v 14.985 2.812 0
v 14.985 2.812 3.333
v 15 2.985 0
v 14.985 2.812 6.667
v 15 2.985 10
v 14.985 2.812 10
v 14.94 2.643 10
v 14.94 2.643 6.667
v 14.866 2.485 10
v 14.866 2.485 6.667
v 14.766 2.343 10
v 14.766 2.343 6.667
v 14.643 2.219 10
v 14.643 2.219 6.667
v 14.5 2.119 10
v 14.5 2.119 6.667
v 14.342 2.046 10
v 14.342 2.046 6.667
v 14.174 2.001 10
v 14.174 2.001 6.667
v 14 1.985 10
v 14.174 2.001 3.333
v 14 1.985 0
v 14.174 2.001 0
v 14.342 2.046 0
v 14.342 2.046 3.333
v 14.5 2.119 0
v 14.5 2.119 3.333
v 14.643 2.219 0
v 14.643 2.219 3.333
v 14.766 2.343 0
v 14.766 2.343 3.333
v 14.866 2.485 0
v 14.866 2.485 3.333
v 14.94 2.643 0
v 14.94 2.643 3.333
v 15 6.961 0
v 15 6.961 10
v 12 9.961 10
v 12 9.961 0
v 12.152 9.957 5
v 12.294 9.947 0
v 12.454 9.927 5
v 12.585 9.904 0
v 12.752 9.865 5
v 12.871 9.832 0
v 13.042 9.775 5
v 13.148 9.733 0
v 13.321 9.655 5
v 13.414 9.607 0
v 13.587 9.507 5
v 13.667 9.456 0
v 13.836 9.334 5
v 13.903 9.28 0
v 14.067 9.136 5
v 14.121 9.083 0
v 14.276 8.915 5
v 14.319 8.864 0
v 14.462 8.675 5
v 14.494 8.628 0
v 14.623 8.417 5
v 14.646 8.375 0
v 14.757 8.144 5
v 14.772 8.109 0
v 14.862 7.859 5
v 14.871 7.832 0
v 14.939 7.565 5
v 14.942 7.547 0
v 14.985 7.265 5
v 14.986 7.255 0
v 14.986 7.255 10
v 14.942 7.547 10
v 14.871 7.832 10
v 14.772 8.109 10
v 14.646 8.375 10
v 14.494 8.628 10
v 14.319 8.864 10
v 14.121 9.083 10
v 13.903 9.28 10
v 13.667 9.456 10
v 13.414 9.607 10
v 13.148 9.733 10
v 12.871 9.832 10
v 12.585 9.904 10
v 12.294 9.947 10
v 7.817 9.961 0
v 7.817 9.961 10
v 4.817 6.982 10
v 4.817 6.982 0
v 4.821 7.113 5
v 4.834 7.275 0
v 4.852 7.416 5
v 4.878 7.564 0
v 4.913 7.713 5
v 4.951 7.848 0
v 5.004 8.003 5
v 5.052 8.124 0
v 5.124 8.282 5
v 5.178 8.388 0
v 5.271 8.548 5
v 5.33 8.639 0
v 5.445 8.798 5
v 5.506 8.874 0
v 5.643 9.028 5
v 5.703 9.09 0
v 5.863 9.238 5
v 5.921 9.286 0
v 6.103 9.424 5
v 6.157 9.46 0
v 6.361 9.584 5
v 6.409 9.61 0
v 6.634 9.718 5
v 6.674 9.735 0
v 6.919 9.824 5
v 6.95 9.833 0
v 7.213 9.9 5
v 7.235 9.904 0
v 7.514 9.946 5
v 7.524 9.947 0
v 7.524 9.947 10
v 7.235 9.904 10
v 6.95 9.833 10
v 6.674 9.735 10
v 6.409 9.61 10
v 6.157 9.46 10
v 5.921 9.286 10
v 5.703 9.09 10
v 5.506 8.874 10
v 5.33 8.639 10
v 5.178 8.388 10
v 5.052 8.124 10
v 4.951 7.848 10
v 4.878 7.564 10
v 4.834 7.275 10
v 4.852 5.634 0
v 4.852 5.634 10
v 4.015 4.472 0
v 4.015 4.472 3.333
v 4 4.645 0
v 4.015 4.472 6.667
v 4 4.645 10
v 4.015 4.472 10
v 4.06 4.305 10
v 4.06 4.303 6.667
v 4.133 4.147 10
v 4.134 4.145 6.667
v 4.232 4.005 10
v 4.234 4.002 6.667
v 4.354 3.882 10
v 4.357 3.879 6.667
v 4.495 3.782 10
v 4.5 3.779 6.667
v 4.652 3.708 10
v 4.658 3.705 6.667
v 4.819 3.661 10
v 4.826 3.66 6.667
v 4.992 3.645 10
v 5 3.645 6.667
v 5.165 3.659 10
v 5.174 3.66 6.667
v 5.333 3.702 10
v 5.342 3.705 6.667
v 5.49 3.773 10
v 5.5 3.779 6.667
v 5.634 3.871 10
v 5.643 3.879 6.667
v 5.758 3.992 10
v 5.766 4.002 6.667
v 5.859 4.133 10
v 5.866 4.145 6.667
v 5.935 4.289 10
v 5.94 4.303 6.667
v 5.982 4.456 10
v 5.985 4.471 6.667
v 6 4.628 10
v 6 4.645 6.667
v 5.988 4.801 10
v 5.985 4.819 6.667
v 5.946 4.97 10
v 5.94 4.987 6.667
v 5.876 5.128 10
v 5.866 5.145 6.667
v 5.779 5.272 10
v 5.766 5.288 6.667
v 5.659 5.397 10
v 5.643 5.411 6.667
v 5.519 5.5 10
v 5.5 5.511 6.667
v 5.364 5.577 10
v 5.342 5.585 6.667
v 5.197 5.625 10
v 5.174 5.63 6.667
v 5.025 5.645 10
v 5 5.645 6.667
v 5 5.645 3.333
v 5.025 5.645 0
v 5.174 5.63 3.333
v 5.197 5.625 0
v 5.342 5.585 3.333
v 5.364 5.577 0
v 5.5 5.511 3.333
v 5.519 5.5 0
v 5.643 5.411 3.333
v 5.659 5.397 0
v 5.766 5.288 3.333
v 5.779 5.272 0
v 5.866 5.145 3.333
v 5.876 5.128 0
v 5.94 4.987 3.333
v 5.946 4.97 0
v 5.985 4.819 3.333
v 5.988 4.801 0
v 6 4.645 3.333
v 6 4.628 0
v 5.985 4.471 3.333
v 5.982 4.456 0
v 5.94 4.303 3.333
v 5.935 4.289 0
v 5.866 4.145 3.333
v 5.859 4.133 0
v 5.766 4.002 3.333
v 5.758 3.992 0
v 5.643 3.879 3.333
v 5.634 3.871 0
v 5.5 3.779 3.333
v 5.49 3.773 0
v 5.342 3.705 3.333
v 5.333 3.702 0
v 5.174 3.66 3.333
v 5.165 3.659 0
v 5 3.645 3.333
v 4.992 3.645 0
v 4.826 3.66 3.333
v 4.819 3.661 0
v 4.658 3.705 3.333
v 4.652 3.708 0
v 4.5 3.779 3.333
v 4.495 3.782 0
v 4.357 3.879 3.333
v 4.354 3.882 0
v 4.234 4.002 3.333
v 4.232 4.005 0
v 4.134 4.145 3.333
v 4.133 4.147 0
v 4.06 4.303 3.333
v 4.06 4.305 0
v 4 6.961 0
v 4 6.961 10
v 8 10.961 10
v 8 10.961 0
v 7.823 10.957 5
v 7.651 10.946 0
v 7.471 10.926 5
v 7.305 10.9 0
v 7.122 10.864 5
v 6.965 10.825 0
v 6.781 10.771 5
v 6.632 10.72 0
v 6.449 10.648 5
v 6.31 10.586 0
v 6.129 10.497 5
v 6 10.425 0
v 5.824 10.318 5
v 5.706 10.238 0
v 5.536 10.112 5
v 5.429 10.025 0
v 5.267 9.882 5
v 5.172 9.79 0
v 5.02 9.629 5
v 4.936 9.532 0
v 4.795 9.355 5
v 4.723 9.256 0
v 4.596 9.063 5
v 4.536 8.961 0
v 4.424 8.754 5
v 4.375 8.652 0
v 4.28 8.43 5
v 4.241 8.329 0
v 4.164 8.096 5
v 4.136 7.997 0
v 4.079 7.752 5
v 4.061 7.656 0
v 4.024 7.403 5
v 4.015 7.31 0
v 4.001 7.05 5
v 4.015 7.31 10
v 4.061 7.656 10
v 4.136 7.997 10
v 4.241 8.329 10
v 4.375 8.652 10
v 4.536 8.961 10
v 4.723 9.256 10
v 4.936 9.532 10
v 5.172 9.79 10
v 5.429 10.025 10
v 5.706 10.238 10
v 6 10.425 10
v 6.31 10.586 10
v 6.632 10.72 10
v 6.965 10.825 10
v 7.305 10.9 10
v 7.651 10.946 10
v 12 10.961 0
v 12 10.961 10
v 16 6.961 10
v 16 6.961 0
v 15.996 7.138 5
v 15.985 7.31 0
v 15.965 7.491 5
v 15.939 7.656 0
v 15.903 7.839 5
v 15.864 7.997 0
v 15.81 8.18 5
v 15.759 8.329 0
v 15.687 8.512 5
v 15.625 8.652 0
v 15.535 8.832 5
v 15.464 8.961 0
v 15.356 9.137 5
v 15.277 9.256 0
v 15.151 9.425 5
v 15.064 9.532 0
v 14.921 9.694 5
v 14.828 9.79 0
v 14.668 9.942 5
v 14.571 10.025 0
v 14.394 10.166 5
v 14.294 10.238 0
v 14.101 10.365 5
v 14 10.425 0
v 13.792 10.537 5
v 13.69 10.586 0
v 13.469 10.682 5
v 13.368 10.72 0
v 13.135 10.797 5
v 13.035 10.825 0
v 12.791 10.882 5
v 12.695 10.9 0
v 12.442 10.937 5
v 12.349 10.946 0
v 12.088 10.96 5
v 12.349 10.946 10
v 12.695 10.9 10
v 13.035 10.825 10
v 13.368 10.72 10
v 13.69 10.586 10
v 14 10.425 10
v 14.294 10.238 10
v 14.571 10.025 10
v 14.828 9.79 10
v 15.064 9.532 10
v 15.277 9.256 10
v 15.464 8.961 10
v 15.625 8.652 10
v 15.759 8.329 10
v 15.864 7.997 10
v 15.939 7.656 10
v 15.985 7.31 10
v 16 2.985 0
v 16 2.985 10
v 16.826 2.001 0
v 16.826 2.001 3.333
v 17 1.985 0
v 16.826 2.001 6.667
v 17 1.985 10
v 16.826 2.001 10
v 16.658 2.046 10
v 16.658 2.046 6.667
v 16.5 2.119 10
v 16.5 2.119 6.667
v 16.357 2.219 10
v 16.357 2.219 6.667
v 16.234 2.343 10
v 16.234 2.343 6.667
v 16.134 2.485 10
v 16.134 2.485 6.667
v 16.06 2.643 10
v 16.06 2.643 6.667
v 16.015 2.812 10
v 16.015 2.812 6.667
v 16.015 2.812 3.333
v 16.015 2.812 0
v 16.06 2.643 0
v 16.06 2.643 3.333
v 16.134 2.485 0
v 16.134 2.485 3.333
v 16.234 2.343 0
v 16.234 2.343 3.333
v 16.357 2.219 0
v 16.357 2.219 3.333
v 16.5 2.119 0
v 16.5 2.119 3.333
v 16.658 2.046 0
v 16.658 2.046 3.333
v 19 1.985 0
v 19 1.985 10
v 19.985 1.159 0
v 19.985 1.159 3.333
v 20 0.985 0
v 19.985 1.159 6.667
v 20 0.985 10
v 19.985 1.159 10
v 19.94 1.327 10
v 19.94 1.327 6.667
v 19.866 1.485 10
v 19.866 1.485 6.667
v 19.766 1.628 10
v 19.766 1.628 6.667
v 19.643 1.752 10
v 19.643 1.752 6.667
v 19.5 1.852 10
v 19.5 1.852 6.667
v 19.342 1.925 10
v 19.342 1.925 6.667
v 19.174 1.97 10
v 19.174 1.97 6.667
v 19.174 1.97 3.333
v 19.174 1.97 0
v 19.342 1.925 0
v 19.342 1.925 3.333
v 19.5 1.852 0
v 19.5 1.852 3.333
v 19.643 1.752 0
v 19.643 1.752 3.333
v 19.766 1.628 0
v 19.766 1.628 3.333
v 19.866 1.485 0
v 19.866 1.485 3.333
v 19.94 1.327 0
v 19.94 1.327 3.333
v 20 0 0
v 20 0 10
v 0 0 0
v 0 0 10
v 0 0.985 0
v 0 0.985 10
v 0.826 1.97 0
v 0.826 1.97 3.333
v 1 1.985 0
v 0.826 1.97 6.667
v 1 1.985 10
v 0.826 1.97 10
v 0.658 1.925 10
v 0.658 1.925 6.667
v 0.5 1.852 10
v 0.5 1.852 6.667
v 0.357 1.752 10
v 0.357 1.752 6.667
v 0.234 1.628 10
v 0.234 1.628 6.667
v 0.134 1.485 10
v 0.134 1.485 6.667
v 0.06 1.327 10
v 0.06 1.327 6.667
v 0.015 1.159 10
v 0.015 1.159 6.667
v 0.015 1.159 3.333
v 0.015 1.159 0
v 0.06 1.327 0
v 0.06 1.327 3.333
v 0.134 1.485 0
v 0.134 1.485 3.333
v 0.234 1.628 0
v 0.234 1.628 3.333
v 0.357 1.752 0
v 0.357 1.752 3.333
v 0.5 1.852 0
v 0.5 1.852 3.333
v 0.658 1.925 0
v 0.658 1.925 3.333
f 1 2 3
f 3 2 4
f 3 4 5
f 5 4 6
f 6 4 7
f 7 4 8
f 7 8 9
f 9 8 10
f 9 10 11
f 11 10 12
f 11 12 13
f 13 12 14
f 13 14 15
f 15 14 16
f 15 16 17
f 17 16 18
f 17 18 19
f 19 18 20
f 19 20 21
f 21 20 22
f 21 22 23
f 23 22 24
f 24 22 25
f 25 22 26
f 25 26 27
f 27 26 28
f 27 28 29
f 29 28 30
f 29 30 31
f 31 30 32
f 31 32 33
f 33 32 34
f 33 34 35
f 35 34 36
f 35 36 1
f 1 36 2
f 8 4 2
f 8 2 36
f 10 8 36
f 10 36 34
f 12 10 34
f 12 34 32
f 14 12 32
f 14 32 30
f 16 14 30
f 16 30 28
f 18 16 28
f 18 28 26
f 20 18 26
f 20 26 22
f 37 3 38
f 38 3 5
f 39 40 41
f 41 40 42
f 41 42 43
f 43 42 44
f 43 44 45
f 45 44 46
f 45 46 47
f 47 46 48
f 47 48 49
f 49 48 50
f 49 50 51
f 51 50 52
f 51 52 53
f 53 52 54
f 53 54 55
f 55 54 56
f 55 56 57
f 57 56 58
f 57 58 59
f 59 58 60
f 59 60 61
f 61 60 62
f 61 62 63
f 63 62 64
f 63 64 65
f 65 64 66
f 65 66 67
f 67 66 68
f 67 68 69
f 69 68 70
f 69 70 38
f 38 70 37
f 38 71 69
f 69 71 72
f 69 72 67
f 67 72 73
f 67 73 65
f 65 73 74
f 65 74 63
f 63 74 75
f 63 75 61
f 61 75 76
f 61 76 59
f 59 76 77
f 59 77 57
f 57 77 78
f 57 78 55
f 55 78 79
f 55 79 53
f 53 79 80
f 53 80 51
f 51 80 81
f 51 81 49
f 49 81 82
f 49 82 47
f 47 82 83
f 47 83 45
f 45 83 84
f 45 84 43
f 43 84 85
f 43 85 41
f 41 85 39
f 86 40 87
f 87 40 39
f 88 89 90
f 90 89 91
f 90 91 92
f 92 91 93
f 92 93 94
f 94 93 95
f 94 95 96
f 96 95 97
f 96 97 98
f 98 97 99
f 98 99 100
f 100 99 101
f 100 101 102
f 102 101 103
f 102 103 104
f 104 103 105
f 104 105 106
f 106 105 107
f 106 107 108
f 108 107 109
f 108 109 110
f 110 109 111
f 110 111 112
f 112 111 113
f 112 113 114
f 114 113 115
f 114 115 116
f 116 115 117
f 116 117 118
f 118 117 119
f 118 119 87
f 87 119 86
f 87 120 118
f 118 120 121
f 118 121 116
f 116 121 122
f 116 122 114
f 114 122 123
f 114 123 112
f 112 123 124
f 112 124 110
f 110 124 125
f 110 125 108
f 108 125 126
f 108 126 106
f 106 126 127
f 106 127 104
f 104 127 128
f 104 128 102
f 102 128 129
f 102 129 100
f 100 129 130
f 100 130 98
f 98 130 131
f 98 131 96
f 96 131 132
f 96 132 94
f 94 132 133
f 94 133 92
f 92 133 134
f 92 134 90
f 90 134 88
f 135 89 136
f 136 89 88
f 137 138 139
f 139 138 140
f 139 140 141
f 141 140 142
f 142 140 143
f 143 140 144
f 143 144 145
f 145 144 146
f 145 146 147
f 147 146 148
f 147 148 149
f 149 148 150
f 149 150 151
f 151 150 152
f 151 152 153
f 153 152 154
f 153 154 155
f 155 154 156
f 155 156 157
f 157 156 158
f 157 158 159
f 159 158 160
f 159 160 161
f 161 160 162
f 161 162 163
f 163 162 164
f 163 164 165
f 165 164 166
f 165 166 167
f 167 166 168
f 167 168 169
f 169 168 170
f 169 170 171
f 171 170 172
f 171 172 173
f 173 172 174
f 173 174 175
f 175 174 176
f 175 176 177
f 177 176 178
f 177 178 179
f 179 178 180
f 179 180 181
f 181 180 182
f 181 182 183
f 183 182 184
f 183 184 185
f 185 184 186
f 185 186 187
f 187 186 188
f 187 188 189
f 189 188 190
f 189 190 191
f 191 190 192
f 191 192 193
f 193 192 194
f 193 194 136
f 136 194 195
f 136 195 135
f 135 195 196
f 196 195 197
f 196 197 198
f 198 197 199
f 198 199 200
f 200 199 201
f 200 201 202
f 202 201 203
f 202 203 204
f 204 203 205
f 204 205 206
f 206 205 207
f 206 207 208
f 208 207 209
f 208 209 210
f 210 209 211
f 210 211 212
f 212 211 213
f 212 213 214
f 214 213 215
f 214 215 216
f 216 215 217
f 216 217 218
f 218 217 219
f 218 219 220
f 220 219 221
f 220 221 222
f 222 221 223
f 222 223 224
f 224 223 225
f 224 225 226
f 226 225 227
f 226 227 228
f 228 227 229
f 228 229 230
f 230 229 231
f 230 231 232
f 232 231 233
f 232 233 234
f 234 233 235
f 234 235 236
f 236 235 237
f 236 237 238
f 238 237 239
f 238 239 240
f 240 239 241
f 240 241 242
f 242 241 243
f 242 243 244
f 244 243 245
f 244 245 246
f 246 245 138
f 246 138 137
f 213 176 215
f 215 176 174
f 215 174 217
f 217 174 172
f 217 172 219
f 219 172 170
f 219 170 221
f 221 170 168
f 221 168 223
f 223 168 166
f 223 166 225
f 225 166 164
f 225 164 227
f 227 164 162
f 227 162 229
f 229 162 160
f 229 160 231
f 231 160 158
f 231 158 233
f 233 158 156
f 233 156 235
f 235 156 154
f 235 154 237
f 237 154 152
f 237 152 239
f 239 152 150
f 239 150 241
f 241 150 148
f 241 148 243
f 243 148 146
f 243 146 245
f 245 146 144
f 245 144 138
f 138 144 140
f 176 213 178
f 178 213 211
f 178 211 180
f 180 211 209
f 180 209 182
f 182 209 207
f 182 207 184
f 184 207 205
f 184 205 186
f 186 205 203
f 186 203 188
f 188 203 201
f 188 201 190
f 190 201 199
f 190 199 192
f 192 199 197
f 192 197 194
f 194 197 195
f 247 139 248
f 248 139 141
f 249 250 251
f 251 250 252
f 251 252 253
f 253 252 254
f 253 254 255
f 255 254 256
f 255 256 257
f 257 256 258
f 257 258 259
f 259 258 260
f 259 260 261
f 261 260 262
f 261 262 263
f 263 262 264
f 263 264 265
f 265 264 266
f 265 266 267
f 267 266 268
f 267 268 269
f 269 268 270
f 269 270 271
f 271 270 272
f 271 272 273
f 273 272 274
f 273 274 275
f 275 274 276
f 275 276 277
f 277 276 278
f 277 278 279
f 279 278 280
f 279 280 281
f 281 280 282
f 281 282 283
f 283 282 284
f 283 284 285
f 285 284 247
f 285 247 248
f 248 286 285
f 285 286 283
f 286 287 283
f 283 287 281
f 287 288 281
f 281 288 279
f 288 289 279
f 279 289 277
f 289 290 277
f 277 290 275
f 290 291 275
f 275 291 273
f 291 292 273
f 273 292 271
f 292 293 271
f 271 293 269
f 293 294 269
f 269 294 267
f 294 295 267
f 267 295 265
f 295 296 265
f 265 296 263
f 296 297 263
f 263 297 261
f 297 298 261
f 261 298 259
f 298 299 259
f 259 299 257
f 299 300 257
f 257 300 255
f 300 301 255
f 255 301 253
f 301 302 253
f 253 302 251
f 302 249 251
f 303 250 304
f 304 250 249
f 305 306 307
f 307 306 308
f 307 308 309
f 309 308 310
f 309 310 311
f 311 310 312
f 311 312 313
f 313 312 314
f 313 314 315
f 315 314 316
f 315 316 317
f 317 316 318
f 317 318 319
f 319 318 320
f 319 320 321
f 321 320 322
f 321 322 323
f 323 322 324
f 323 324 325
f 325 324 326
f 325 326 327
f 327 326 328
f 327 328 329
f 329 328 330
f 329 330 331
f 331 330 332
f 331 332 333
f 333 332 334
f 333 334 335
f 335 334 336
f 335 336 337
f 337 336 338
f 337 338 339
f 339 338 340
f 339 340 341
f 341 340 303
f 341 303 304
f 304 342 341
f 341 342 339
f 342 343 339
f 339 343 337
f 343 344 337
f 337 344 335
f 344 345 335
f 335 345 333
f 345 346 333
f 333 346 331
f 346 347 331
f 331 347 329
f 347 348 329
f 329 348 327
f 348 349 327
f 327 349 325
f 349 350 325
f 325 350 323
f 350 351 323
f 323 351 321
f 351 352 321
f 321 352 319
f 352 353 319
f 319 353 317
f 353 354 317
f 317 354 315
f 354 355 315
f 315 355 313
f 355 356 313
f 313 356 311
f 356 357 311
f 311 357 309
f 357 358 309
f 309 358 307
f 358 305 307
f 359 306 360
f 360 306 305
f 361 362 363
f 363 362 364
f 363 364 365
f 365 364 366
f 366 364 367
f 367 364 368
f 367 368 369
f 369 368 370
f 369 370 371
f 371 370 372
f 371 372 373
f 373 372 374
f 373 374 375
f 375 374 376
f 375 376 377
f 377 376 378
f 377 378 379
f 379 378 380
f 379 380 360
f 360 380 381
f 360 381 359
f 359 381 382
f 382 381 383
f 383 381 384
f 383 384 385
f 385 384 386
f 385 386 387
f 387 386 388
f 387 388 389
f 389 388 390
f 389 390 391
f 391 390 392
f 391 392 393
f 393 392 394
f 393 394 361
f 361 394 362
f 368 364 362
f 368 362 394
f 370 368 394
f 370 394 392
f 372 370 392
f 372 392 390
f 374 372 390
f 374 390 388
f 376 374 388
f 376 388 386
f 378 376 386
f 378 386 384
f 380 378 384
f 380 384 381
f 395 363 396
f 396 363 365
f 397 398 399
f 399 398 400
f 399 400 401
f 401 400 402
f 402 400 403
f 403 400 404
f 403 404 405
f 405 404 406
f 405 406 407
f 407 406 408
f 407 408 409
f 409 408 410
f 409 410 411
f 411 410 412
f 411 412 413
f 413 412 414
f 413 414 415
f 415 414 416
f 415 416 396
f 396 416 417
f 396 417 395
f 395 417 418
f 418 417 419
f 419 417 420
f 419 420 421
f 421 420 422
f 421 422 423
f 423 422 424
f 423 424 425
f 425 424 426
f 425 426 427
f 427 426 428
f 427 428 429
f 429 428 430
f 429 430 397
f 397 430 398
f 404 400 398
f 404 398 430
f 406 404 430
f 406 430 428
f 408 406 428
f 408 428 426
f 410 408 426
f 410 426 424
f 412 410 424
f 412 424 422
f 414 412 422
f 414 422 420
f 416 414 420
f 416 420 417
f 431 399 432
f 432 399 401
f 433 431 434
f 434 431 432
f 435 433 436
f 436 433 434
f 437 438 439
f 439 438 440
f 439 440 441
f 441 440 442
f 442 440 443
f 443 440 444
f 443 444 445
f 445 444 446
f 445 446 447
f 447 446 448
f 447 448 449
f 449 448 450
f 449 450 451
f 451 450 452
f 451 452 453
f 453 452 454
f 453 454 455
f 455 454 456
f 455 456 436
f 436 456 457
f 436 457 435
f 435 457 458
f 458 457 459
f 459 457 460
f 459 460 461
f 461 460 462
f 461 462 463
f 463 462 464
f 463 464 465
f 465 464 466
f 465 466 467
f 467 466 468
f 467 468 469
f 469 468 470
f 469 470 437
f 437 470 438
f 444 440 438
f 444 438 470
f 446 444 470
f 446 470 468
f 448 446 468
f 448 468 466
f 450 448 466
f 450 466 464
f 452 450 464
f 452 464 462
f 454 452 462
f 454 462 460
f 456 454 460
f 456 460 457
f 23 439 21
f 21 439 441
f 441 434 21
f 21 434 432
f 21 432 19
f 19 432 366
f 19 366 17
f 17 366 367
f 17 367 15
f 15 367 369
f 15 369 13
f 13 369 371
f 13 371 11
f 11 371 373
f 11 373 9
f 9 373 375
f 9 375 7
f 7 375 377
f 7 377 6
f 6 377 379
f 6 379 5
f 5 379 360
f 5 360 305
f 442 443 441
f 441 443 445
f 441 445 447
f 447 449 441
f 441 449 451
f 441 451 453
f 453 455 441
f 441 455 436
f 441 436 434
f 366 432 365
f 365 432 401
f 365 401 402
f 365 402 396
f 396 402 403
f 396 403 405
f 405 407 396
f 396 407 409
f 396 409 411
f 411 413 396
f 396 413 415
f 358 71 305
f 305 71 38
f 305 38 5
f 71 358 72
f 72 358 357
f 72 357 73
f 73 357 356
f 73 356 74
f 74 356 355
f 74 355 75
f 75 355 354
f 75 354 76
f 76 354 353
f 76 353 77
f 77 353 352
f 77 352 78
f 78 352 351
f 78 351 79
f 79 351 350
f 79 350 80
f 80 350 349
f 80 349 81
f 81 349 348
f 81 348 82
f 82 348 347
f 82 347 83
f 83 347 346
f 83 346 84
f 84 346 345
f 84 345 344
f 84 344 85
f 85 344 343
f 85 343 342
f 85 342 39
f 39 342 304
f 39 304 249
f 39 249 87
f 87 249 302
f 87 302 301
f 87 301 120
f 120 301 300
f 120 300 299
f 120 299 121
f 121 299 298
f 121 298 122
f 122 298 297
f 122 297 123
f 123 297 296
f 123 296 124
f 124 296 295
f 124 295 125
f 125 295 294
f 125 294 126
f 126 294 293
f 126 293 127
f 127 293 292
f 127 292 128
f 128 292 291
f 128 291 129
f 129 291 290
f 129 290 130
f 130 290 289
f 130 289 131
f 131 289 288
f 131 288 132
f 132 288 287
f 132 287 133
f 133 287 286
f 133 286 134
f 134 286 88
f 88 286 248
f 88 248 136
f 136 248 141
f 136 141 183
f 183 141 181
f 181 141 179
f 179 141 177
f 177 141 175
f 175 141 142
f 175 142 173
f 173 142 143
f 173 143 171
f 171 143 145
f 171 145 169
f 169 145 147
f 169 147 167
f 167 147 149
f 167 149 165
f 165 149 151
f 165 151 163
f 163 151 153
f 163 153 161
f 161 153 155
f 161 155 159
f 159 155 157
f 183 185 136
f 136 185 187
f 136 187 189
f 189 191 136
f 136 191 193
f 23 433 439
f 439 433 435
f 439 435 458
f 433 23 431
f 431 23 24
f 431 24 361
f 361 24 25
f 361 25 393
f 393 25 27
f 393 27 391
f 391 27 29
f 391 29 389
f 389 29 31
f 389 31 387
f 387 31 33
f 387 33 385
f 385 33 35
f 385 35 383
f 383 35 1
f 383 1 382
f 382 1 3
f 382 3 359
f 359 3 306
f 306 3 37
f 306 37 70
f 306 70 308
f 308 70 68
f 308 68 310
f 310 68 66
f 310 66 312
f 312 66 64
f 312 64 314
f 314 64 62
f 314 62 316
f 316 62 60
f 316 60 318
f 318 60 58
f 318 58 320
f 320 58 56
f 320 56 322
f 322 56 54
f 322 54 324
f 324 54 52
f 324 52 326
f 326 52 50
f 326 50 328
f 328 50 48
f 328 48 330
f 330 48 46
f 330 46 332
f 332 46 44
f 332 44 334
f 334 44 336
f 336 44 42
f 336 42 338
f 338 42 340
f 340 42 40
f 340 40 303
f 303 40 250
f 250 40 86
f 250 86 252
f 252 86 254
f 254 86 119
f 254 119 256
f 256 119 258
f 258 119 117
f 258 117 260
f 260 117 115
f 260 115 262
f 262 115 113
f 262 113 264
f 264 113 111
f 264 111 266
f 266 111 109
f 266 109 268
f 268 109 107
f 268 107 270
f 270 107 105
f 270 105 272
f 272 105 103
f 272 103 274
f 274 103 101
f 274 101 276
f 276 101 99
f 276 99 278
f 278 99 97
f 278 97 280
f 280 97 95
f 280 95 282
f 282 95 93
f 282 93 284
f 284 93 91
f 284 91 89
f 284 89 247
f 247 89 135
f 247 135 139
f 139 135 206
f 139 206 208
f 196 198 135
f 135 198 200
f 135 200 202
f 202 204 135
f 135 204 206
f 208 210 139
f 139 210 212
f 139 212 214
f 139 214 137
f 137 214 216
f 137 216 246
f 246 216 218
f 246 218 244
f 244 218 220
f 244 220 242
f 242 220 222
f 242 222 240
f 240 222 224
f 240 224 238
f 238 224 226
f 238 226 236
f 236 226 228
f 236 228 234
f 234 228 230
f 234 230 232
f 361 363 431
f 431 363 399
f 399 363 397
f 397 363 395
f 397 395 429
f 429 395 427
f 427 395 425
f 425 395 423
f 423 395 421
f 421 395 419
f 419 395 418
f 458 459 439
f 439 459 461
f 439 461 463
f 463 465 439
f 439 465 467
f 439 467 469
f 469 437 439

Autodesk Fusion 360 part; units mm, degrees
sketch "Sketch1" plane through (0, 0, 0) normal (0, 0, 1) x (1, 0, 0)
  line L0 (4, 4.645) -> (4, 6.9613)
  line L1 (8, 10.9613) -> (12, 10.9613)
  line L2 (16, 6.9613) -> (16, 2.9855)
  line L3 (13, 2) -> (15, 2)
  line L4 (15, 2.9855) -> (15, 6.9613)
  line L5 (12, 9.9613) -> (7.8172, 9.9613)
  line L6 (17, 1.9855) -> (19, 1.9855)
  arc A0 (16, 2.9855) -> (17, 1.9855) centre (17, 2.9855) ccw
  line L7 (14, 1.9855) -> (1, 1.9855)
  arc A1 (14, 1.9855) -> (15, 2.9855) centre (14, 2.9855) ccw
  line L8 (0, 0.9855) -> (0, 0)
  line L9 (0, 0) -> (20, 0)
  line L10 (20, 0) -> (20, 0.9855)
  arc A2 (1, 1.9855) -> (0, 0.9855) centre (1, 0.9855) ccw
  arc A3 (20, 0.9855) -> (19, 1.9855) centre (19, 0.9855) ccw
  arc A4 (4, 4.645) -> (4.8517, 5.6339) centre (5, 4.645) ccw
  arc A5 (8, 10.9613) -> (4, 6.9613) centre (8, 6.9613) ccw
  arc A6 (16, 6.9613) -> (12, 10.9613) centre (12, 6.9613) ccw
  arc A7 (7.8172, 9.9613) -> (4.8173, 6.9821) centre (7.8172, 6.9613) ccw
  arc A8 (15, 6.9613) -> (12, 9.9613) centre (12, 6.9613) ccw
  line L11 (4.8173, 6.9821) -> (4.8517, 5.6339)
  dimension "d5" = 1
  dimension "d6" = 1
  dimension "d9" = 1
  dimension "d10" = 1
  dimension "d12" = 1
  dimension "d13" = 1
  dimension "d14" = 4
  dimension "d15" = 4
  dimension "d16" = 20
  dimension "d21" = 1
  dimension "d23" = 4
  dimension "d24" = 4
  dimension "d25" = 3
  dimension "d26" = 3
extrude "Extrude1" add sketch "Sketch1" along normal blind 10
